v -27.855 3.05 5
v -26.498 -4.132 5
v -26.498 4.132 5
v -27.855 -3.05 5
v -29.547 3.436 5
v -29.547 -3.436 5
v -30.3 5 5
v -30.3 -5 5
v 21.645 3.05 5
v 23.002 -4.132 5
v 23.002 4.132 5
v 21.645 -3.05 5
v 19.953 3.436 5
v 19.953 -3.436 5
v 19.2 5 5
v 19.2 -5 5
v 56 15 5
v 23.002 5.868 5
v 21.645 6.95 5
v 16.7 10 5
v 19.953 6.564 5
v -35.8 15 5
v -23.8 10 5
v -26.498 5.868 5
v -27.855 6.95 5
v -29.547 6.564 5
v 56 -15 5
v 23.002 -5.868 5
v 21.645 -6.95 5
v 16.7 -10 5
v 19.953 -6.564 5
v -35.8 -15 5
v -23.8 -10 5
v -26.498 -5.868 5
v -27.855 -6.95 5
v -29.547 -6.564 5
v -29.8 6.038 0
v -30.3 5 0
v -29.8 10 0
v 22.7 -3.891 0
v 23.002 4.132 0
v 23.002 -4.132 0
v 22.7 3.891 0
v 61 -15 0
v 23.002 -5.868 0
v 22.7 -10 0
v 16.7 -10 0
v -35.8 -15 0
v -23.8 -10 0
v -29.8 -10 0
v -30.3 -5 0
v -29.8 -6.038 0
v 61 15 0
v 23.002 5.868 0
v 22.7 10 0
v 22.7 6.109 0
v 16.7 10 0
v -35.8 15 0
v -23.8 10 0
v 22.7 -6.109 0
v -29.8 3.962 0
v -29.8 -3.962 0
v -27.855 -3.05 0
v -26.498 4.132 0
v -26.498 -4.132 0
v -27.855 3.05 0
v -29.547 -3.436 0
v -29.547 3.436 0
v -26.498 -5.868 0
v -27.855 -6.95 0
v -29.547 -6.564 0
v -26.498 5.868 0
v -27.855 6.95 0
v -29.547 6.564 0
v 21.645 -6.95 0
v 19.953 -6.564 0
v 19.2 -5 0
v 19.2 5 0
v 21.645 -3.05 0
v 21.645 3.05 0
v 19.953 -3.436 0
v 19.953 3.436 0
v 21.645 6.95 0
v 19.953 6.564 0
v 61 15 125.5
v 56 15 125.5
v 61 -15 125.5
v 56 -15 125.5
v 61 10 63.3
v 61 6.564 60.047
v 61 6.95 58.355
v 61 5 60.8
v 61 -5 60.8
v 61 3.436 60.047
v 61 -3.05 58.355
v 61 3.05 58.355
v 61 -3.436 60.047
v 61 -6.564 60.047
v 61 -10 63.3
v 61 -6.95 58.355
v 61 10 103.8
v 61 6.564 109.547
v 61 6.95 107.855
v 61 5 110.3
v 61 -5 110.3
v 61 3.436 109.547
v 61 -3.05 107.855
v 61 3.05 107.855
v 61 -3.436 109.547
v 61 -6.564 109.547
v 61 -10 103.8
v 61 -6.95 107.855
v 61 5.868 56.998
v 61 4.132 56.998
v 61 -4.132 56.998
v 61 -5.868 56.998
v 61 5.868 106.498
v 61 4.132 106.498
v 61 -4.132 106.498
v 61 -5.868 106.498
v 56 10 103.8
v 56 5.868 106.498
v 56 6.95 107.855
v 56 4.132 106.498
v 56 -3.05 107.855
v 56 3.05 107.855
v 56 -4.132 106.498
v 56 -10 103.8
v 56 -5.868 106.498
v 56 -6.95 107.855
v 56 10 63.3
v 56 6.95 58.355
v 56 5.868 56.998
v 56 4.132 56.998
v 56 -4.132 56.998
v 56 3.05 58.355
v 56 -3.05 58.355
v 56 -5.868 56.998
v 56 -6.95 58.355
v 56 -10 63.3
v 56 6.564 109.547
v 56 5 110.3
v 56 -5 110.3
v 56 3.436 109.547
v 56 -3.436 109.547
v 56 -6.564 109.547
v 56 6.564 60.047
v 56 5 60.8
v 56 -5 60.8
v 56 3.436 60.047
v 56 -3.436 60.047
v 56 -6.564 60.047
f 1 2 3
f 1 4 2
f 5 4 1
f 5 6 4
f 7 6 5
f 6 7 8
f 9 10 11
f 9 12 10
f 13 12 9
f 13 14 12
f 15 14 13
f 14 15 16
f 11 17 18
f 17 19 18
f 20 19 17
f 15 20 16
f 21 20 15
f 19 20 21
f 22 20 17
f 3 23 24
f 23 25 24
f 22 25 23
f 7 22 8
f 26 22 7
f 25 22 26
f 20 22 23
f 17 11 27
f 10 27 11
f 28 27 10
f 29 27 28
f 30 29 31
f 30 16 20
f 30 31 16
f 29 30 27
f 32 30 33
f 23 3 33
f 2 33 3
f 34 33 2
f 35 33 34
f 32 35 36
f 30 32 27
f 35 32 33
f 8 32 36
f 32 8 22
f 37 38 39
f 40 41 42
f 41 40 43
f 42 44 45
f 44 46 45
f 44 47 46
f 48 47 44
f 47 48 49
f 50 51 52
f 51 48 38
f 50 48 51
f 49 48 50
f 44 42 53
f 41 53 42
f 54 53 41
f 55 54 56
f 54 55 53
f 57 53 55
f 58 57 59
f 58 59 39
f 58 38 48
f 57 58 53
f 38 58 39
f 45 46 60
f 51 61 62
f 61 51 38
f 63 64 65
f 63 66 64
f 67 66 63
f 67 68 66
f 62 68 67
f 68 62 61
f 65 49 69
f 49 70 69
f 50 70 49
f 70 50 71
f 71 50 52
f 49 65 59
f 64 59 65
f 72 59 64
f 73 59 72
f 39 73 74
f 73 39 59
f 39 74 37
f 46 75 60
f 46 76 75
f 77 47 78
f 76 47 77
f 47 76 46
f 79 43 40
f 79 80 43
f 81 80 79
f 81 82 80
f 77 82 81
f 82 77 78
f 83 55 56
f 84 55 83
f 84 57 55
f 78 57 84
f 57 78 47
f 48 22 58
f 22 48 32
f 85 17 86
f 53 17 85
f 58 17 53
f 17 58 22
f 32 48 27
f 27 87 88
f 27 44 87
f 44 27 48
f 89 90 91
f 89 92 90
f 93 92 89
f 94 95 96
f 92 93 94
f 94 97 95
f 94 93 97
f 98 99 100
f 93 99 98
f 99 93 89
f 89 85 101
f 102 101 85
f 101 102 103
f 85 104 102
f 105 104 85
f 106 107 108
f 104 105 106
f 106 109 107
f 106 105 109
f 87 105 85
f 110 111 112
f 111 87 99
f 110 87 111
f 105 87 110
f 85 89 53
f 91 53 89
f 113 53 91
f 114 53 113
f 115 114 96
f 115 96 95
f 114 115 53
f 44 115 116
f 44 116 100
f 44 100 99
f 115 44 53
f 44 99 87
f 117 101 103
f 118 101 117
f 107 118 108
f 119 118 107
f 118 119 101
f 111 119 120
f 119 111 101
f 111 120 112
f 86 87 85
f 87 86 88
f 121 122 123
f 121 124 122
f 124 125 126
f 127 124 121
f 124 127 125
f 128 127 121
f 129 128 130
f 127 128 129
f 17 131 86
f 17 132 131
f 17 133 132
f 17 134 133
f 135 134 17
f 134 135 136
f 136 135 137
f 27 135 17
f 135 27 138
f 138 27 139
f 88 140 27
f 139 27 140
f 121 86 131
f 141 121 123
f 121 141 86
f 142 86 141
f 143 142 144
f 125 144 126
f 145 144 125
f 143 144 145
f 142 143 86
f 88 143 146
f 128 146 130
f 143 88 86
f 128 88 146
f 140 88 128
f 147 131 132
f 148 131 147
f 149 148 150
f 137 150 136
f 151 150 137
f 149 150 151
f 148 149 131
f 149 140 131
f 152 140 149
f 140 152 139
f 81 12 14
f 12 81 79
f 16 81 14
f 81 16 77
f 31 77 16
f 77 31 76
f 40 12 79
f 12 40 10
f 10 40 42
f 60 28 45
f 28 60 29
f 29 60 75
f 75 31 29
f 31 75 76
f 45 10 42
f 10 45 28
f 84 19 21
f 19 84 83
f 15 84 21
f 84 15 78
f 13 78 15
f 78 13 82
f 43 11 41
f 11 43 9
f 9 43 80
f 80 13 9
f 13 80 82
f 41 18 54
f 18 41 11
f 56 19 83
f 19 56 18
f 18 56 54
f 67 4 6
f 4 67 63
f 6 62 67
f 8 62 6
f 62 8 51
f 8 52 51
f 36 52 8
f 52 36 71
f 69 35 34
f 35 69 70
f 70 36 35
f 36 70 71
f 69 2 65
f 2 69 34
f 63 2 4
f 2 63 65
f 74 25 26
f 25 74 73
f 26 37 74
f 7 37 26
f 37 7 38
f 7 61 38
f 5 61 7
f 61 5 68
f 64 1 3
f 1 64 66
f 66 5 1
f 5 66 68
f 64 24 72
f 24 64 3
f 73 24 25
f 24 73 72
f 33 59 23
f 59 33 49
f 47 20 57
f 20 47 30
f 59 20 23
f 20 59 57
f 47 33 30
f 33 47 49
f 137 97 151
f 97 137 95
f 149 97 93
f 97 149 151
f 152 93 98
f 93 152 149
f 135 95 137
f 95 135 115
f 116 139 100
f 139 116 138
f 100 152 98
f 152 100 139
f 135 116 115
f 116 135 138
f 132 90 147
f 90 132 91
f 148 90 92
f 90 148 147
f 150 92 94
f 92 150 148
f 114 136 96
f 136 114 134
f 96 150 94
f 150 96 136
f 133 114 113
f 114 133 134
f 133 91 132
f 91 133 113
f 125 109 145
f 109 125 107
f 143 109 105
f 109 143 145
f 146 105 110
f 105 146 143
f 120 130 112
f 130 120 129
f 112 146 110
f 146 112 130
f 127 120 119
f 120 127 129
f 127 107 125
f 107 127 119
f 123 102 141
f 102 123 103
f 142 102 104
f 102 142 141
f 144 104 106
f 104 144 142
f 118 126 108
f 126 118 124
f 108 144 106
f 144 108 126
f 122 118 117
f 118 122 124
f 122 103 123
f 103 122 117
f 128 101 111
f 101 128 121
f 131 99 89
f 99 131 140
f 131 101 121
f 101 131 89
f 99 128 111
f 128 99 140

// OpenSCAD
servo_width = 40.5;
servo_depth = 20;
servo_height = 26.8;
servo_overhang = 18.5;
servo_post_offset = 16.7;

//sw = [-16.7,23.3];
//sd = [-10,10];
//sh = [-26.8,16.5];

module servo(){union(){
    //servo body
    translate([-servo_post_offset,-servo_depth/2,-servo_height])
        cube([servo_width,servo_depth,servo_height+servo_overhang]);
    
    //lip
    translate([-servo_post_offset-6,-servo_depth/2,0])
        cube([servo_width+12,servo_depth,servo_overhang]);
    
    //holes
    for(x = [-4.5, 45])
        for(y = [-5,5])
            translate([x-servo_post_offset,y,-20])
                cylinder(d=4, h=20);
}}

camera_width = 42;
camera_height = 42;

height_offset = 80;
width_offset = 16.5 + camera_width/2;


difference(){
    //frame
    union(){
        //horizontal post
        translate([-servo_width+servo_post_offset-12,-servo_depth/2-5,0])
            cube([width_offset+servo_width+servo_post_offset,servo_depth+10,5]);
        //vertical post
        translate([width_offset+servo_overhang,-servo_depth/2-5,0])
            cube([5,servo_depth+10,height_offset+servo_width+5]);
    }
    //yaw
    rotate([0,180,0])
        servo();

    //pitch
    translate([width_offset+servo_post_offset,0,height_offset])
        rotate([0,-90,0])
            servo();
}
